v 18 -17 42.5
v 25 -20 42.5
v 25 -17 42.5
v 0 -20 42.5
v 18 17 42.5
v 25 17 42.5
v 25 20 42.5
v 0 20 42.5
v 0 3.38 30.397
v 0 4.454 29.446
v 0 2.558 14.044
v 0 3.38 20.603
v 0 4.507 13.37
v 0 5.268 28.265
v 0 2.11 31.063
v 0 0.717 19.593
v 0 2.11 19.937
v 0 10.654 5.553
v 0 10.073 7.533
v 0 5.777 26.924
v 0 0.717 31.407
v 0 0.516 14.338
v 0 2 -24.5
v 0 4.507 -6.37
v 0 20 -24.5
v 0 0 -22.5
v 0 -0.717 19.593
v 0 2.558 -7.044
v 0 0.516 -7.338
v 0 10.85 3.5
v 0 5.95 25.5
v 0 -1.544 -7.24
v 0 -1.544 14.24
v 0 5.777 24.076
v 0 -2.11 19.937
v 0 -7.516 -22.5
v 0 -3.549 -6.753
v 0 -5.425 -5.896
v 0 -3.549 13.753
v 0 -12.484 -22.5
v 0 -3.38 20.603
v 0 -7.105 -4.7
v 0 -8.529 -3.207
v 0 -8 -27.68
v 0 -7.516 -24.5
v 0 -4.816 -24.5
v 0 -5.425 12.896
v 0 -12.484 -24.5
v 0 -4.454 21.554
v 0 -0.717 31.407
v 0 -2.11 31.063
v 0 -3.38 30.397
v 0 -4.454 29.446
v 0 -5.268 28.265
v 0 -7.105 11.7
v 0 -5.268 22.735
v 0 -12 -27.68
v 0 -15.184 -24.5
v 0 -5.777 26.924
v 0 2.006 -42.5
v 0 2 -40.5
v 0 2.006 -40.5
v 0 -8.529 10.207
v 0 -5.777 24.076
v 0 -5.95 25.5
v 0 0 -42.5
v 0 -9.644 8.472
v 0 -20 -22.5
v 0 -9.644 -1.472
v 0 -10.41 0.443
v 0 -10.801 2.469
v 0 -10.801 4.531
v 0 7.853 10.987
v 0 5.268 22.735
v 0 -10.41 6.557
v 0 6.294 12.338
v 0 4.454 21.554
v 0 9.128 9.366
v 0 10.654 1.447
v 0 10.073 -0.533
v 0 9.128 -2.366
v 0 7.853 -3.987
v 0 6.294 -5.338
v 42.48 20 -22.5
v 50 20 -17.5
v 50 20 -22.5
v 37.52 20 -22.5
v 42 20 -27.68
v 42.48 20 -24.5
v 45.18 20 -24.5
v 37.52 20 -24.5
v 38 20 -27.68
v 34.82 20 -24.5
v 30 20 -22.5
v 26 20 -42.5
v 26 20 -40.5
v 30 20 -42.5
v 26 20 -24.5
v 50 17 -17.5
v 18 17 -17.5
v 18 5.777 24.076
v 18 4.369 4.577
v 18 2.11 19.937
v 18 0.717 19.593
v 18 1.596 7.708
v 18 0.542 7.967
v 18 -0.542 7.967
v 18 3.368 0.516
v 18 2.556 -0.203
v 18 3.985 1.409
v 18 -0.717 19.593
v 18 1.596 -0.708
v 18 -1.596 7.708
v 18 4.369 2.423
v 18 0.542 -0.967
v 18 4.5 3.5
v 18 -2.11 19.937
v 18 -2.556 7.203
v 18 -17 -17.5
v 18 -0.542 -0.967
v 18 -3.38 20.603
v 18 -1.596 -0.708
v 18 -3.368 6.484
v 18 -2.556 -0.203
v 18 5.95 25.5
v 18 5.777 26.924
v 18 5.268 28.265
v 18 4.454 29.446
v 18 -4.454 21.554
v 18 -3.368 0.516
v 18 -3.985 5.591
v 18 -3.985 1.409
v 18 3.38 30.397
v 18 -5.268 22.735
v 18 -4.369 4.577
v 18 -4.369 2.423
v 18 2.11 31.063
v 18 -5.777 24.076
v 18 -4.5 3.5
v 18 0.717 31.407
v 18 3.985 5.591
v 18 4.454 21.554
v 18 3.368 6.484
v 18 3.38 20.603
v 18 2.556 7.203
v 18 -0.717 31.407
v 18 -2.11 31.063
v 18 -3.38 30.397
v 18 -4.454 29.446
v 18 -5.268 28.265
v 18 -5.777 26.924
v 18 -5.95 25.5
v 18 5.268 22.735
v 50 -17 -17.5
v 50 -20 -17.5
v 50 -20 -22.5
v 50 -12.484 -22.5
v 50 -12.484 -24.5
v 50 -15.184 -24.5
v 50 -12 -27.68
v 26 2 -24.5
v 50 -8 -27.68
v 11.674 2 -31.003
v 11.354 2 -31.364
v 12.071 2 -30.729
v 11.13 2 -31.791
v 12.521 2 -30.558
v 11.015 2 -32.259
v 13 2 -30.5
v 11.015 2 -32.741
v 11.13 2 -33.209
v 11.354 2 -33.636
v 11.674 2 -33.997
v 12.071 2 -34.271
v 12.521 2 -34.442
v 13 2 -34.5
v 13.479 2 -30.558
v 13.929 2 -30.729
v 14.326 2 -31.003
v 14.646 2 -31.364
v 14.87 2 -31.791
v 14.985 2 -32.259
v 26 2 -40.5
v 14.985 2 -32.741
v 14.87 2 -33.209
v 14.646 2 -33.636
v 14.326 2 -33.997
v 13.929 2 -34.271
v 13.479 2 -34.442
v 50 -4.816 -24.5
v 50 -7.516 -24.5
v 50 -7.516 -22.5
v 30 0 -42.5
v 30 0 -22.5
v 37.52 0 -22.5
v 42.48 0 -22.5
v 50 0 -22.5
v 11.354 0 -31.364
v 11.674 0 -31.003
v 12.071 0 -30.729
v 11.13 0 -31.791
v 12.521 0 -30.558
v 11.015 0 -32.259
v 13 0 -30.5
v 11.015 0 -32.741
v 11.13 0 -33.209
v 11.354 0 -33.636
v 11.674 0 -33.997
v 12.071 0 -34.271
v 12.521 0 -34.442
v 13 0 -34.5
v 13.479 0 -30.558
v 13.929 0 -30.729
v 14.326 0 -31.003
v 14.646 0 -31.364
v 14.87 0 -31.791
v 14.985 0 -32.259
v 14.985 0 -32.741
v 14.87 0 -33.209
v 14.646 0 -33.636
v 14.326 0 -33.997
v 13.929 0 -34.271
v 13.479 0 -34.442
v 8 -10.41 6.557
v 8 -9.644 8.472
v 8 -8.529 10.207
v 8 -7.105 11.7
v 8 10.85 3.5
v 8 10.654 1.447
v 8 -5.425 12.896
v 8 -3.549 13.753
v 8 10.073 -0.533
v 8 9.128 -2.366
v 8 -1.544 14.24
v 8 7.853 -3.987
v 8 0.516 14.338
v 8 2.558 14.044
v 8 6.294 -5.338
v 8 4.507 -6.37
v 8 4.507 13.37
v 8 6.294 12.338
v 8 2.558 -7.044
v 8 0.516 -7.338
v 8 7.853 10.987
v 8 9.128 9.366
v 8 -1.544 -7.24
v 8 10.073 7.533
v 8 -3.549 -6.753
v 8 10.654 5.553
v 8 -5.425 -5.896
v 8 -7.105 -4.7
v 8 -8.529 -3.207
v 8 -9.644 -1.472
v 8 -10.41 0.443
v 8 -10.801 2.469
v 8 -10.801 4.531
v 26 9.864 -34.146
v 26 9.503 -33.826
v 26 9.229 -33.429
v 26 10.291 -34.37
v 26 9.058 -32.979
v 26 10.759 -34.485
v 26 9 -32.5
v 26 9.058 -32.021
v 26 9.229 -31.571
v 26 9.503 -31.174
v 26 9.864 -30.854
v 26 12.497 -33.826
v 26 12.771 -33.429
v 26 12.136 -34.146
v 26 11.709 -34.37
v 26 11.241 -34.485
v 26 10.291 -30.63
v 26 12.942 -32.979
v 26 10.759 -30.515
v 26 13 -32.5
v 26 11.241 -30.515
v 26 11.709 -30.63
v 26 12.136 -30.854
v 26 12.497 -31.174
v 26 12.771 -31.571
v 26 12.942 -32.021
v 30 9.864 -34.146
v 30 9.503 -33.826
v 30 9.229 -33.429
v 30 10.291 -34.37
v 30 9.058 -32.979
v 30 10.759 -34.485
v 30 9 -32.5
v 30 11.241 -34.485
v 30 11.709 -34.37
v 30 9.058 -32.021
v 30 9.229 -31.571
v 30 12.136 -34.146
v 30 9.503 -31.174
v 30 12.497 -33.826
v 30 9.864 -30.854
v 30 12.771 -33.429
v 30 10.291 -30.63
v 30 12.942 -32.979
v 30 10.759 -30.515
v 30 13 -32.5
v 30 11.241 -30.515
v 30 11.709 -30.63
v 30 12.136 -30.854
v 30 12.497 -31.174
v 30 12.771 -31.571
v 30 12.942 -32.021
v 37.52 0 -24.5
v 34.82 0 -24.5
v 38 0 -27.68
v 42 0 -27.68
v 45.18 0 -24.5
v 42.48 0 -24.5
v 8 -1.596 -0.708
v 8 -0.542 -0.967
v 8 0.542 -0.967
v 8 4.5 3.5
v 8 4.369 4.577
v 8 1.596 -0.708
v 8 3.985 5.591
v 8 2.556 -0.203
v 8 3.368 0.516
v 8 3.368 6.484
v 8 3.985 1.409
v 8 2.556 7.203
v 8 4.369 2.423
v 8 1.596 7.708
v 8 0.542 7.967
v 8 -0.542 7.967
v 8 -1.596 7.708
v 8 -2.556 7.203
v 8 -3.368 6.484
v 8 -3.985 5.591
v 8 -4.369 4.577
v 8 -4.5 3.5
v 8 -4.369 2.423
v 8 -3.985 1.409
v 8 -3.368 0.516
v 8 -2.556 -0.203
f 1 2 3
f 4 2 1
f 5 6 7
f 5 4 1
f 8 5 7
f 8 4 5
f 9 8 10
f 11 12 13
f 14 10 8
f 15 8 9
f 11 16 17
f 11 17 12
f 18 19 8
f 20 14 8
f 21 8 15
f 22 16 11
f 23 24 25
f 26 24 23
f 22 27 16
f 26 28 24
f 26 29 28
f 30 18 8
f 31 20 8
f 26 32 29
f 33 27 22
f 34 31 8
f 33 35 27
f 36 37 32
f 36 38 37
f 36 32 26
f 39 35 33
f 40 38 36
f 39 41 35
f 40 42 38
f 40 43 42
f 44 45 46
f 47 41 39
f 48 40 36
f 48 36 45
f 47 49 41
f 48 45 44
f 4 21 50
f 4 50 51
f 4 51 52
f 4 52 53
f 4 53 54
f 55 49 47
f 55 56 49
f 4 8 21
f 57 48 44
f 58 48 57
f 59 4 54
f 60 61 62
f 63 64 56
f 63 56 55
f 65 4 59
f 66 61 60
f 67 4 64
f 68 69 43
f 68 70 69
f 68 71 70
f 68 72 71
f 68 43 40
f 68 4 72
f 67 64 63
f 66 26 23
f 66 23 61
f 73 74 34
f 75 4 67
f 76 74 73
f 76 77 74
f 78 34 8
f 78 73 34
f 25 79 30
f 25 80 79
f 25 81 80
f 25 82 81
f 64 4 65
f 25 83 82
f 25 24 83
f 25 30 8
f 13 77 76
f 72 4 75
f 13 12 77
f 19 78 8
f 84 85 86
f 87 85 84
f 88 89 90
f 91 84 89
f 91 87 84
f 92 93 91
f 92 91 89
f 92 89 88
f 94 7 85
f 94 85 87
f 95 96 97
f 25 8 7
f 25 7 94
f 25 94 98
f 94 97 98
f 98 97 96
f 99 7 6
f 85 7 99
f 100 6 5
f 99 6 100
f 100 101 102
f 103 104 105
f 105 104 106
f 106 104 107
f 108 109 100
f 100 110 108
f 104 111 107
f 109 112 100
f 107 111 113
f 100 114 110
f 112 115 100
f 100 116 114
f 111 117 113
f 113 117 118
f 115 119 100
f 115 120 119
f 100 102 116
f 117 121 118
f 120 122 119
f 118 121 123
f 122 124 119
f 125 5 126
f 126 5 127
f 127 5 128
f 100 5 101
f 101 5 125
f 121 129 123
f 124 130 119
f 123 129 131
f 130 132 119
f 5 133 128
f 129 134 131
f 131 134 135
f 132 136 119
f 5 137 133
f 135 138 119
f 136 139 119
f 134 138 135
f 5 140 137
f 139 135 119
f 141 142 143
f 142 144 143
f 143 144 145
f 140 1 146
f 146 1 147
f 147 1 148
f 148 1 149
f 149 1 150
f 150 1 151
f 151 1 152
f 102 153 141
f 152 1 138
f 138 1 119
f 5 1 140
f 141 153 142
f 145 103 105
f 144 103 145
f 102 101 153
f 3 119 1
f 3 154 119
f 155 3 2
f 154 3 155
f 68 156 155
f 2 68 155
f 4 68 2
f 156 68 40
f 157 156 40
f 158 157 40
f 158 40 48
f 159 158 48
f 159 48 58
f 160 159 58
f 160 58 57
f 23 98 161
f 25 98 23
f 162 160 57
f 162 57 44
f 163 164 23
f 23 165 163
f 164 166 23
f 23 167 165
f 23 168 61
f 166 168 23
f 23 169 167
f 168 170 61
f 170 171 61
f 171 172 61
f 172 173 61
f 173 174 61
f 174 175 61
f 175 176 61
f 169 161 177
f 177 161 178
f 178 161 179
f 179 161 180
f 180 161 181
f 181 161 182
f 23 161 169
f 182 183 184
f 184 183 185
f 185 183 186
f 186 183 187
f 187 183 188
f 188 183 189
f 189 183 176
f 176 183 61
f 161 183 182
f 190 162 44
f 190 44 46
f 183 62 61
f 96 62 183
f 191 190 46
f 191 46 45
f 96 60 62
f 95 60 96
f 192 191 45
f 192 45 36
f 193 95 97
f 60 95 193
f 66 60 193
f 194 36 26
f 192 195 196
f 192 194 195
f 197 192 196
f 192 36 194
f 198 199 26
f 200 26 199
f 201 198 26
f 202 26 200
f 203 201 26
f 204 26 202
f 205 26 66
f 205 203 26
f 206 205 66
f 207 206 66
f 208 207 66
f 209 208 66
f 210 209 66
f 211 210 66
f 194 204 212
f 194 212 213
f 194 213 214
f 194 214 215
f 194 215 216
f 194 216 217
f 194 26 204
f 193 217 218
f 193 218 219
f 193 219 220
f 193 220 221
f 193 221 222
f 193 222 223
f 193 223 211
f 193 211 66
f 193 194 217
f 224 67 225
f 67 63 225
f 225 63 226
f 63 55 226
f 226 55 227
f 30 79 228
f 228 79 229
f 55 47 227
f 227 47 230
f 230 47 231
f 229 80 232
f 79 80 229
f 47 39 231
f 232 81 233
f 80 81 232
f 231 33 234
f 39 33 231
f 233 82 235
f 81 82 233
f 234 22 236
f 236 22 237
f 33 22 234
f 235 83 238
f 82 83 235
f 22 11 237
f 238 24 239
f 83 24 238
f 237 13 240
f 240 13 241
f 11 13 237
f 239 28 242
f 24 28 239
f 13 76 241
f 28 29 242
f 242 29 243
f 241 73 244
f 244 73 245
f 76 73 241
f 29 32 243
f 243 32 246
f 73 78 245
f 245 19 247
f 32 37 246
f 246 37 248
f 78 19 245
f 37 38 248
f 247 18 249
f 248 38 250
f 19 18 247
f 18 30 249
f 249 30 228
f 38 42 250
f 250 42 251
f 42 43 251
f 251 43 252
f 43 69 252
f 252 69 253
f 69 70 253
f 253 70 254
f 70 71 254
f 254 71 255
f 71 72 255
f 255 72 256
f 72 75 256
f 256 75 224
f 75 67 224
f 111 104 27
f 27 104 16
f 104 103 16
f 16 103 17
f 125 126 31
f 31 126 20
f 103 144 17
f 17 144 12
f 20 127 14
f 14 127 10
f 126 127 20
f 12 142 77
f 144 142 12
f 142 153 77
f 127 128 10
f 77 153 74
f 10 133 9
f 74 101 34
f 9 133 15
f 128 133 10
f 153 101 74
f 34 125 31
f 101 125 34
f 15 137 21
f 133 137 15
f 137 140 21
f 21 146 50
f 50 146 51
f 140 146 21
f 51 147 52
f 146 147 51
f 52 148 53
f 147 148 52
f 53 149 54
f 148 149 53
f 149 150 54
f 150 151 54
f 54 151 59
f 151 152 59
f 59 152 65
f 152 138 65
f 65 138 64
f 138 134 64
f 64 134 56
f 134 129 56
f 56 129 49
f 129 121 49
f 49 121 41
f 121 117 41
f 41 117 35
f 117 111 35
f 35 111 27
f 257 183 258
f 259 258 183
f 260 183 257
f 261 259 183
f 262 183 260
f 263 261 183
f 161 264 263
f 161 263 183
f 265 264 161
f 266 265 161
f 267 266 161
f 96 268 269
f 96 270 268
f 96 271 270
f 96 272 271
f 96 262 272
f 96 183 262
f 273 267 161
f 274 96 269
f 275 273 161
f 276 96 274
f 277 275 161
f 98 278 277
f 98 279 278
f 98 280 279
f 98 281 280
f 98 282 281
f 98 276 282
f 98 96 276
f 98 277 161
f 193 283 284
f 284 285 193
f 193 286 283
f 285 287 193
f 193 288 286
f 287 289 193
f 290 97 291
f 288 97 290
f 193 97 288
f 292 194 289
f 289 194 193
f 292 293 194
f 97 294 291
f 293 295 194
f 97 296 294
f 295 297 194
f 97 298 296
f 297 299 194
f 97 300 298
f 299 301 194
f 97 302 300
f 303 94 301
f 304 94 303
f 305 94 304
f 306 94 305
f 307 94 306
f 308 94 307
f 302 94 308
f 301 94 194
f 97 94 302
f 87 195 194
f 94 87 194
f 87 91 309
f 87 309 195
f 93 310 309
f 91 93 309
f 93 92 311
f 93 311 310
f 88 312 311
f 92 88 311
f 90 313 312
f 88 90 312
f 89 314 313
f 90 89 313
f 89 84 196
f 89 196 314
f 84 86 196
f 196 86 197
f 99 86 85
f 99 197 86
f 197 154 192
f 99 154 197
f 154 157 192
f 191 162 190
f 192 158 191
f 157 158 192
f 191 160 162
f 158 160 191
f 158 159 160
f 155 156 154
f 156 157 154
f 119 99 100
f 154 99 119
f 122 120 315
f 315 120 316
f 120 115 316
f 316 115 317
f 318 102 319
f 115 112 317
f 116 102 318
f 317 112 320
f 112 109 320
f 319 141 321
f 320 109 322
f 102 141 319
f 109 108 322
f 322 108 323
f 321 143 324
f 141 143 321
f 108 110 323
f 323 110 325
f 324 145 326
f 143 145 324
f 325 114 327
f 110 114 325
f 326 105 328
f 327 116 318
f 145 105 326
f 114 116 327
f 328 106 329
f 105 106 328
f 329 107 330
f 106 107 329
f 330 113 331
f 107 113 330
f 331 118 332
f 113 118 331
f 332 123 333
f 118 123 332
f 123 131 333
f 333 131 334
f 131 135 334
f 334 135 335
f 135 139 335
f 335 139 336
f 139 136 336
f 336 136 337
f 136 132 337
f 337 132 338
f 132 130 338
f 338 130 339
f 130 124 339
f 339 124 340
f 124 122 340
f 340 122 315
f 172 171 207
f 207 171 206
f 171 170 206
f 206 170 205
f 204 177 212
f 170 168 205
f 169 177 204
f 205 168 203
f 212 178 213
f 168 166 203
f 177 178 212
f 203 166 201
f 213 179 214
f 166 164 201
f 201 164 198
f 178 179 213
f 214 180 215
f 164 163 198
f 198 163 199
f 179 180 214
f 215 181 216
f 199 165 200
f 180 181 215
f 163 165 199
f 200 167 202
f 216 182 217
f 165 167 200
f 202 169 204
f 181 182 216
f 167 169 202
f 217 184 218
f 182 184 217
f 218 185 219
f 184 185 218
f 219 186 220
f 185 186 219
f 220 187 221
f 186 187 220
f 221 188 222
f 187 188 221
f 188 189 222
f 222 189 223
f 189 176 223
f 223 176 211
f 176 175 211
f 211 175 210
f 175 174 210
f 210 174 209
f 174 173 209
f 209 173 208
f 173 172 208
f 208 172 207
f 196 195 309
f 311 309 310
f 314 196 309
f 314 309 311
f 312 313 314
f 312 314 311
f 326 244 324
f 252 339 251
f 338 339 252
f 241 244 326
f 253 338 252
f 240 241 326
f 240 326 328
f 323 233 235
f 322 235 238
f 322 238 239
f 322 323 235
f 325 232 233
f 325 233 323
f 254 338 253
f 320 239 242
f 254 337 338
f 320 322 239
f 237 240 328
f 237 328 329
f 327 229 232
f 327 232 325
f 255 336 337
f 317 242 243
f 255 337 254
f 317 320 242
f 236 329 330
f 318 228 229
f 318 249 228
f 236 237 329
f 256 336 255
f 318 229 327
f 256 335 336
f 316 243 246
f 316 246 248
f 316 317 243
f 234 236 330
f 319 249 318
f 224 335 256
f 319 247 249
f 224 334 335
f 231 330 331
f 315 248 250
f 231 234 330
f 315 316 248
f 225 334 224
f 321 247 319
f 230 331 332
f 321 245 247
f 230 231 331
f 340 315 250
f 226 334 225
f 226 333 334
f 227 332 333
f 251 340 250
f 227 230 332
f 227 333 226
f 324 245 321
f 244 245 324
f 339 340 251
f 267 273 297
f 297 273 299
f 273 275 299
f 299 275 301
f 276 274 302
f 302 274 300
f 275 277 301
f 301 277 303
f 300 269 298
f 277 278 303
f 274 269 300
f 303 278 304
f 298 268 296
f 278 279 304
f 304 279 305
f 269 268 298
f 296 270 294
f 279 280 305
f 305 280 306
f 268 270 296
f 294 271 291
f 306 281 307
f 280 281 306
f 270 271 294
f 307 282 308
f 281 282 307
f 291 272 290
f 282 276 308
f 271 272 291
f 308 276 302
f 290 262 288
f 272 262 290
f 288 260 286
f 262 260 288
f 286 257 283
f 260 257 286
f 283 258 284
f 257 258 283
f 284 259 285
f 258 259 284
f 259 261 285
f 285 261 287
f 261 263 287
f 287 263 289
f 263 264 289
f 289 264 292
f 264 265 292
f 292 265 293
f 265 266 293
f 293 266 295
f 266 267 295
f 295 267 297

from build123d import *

# Parameters (mm, degrees)
SKETCH_W        = 40
SKETCH_H        = 85
PAD_DEPTH       = 50
POCKET_DEPTH    = 50
POCKET001_DEPTH = 20
SKETCH003_W     = 16
SKETCH003_H     = 26
POCKET002_DEPTH = 18
SKETCH004_R     = 2
POCKET003_DEPTH = 4
SKETCH005_R     = 2
POCKET004_DEPTH = 4
POCKET005_DEPTH = 2
SKETCH007_W     = 34
SKETCH007_H     = 60
POCKET006_DEPTH = 32
SKETCH008_R     = 4.5
SKETCH008_R_2   = 5.95
POCKET007_DEPTH = 18
SKETCH009_R     = 10.85
POCKET008_DEPTH = 8
POCKET009_DEPTH = 40.001


with BuildPart() as part:
    # Sketch → Pad (new body)
    with BuildSketch(Plane.YZ):
        Rectangle(SKETCH_W, SKETCH_H)
    extrude(amount=PAD_DEPTH)

    # Sketch001 (on Face6 of Pad) → Pocket (cut)
    with BuildSketch(Plane.YZ.offset(50)):
        Polygon((-20, -22.5), (-20, -42.5), (0, -42.5), (0, -22.5), (-7.51604, -22.5), (-7.51604, -24.5), (-4.81604, -24.5), (-8, -27.68), (-12, -27.68), (-15.18396, -24.5), (-12.48396, -24.5), (-12.48396, -22.5), align=None)
    extrude(amount=-POCKET_DEPTH, mode=Mode.SUBTRACT)

    # Sketch002 (on Face3 of Pocket) → Pocket001 (cut)
    with BuildSketch(Plane.ZX.offset(20)):
        Polygon((-22.5, 50), (-42.5, 50), (-42.5, 30), (-22.5, 30), (-22.5, 37.52), (-24.5, 37.52), (-24.5, 34.82), (-27.68, 38), (-27.68, 42), (-24.5, 45.18), (-24.5, 42.48), (-22.5, 42.48), align=None)
    extrude(amount=-POCKET001_DEPTH, mode=Mode.SUBTRACT)

    # Sketch003 (on Face3 of Pocket001) → Pocket002 (cut)
    with BuildSketch(Plane.ZX.offset(20)):
        with Locations((-32.5, 13)):
            Rectangle(SKETCH003_W, SKETCH003_H)
    extrude(amount=-POCKET002_DEPTH, mode=Mode.SUBTRACT)

    # Sketch004 (on Face30 of Pocket002) → Pocket003 (cut)
    with BuildSketch(Plane.ZX.offset(2)):
        with Locations((-32.5, 13)):
            Circle(SKETCH004_R)
    extrude(amount=-POCKET003_DEPTH, mode=Mode.SUBTRACT)

    # Sketch005 (on Face8 of Pocket003) → Pocket004 (cut)
    with BuildSketch(Plane(origin=(26, 0, 0), x_dir=(0, 1, 0), z_dir=(-1, 0, 0))):
        with Locations((11, 32.5)):
            Circle(SKETCH005_R)
    extrude(amount=-POCKET004_DEPTH, mode=Mode.SUBTRACT)

    # Sketch006 (on Face10 of Pocket004) → Pocket005 (cut)
    with BuildSketch(Plane.YX.offset(42.5)):
        Polygon((2.005691, 0), (20, 26), (20, 0), align=None)
    extrude(amount=-POCKET005_DEPTH, mode=Mode.SUBTRACT)

    # Sketch007 (on Face5 of Pocket005) → Pocket006 (cut)
    with BuildSketch(Plane.YZ.offset(50)):
        with Locations((0, 12.5)):
            Rectangle(SKETCH007_W, SKETCH007_H)
    extrude(amount=-POCKET006_DEPTH, mode=Mode.SUBTRACT)

    # Sketch008 (on Face6 of Pocket006) → Pocket007 (cut)
    with BuildSketch(Plane.YZ.offset(18)):
        with Locations((0, 3.5)):
            Circle(SKETCH008_R)
        with Locations((0, 25.5)):
            Circle(SKETCH008_R_2)
    extrude(amount=-POCKET007_DEPTH, mode=Mode.SUBTRACT)

    # Sketch009 (on Face2 of Pocket007) → Pocket008 (cut)
    with BuildSketch(Plane(origin=(0, 0, 0), x_dir=(0, 1, 0), z_dir=(-1, 0, 0))):
        with Locations((0, -3.5)):
            Circle(SKETCH009_R)
    extrude(amount=-POCKET008_DEPTH, mode=Mode.SUBTRACT)

    # Sketch010 (on Face3 of Pocket008) → Pocket009 (cut, through all)
    with BuildSketch(Plane.ZX.offset(20)):
        Polygon((-17.5, 50), (42.5, 50), (42.5, 25), align=None)
    extrude(amount=-POCKET009_DEPTH, mode=Mode.SUBTRACT)


solid = part.part
